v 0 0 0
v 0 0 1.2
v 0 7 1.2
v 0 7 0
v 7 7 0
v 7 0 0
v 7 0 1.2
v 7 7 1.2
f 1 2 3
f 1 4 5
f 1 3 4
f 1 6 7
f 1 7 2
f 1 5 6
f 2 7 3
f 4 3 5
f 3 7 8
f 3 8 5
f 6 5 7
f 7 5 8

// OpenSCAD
/* Warning, this is a very basic generator with a lot of approximation 
input data : [TQFP, 3BB, 7x7x1.2mm, 32, , A, C04-21017A]
generated by com.zoubworld.electronics.cad.model3d.Basic
Date : Sun Feb 15 10:50:49 CET 2026
*/

//body
color("black")
translate([0,0,0])
cube([7.0,7.0,1.2], center=false);
